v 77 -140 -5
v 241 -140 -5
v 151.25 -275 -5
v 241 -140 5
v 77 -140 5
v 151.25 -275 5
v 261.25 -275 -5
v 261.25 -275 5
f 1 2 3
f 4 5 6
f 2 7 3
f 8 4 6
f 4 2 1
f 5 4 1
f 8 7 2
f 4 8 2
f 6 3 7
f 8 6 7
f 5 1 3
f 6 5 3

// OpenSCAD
polyhedron(points=[[151.25, -275.0, -5.0], [77.0, -140.0, -5.0], [241.0, -140.0, -5.0], [151.25, -275.0, 5.0], [77.0, -140.0, 5.0], [241.0, -140.0, 5.0], [261.25, -275.0, -5.0], [261.25, -275.0, 5.0]], faces=[[1, 2, 0], [5, 4, 3], [2, 6, 0], [7, 5, 3], [5, 2, 1], [4, 5, 1], [7, 6, 2], [5, 7, 2], [3, 0, 6], [7, 3, 6], [4, 1, 0], [3, 4, 0]], convexity=20);
